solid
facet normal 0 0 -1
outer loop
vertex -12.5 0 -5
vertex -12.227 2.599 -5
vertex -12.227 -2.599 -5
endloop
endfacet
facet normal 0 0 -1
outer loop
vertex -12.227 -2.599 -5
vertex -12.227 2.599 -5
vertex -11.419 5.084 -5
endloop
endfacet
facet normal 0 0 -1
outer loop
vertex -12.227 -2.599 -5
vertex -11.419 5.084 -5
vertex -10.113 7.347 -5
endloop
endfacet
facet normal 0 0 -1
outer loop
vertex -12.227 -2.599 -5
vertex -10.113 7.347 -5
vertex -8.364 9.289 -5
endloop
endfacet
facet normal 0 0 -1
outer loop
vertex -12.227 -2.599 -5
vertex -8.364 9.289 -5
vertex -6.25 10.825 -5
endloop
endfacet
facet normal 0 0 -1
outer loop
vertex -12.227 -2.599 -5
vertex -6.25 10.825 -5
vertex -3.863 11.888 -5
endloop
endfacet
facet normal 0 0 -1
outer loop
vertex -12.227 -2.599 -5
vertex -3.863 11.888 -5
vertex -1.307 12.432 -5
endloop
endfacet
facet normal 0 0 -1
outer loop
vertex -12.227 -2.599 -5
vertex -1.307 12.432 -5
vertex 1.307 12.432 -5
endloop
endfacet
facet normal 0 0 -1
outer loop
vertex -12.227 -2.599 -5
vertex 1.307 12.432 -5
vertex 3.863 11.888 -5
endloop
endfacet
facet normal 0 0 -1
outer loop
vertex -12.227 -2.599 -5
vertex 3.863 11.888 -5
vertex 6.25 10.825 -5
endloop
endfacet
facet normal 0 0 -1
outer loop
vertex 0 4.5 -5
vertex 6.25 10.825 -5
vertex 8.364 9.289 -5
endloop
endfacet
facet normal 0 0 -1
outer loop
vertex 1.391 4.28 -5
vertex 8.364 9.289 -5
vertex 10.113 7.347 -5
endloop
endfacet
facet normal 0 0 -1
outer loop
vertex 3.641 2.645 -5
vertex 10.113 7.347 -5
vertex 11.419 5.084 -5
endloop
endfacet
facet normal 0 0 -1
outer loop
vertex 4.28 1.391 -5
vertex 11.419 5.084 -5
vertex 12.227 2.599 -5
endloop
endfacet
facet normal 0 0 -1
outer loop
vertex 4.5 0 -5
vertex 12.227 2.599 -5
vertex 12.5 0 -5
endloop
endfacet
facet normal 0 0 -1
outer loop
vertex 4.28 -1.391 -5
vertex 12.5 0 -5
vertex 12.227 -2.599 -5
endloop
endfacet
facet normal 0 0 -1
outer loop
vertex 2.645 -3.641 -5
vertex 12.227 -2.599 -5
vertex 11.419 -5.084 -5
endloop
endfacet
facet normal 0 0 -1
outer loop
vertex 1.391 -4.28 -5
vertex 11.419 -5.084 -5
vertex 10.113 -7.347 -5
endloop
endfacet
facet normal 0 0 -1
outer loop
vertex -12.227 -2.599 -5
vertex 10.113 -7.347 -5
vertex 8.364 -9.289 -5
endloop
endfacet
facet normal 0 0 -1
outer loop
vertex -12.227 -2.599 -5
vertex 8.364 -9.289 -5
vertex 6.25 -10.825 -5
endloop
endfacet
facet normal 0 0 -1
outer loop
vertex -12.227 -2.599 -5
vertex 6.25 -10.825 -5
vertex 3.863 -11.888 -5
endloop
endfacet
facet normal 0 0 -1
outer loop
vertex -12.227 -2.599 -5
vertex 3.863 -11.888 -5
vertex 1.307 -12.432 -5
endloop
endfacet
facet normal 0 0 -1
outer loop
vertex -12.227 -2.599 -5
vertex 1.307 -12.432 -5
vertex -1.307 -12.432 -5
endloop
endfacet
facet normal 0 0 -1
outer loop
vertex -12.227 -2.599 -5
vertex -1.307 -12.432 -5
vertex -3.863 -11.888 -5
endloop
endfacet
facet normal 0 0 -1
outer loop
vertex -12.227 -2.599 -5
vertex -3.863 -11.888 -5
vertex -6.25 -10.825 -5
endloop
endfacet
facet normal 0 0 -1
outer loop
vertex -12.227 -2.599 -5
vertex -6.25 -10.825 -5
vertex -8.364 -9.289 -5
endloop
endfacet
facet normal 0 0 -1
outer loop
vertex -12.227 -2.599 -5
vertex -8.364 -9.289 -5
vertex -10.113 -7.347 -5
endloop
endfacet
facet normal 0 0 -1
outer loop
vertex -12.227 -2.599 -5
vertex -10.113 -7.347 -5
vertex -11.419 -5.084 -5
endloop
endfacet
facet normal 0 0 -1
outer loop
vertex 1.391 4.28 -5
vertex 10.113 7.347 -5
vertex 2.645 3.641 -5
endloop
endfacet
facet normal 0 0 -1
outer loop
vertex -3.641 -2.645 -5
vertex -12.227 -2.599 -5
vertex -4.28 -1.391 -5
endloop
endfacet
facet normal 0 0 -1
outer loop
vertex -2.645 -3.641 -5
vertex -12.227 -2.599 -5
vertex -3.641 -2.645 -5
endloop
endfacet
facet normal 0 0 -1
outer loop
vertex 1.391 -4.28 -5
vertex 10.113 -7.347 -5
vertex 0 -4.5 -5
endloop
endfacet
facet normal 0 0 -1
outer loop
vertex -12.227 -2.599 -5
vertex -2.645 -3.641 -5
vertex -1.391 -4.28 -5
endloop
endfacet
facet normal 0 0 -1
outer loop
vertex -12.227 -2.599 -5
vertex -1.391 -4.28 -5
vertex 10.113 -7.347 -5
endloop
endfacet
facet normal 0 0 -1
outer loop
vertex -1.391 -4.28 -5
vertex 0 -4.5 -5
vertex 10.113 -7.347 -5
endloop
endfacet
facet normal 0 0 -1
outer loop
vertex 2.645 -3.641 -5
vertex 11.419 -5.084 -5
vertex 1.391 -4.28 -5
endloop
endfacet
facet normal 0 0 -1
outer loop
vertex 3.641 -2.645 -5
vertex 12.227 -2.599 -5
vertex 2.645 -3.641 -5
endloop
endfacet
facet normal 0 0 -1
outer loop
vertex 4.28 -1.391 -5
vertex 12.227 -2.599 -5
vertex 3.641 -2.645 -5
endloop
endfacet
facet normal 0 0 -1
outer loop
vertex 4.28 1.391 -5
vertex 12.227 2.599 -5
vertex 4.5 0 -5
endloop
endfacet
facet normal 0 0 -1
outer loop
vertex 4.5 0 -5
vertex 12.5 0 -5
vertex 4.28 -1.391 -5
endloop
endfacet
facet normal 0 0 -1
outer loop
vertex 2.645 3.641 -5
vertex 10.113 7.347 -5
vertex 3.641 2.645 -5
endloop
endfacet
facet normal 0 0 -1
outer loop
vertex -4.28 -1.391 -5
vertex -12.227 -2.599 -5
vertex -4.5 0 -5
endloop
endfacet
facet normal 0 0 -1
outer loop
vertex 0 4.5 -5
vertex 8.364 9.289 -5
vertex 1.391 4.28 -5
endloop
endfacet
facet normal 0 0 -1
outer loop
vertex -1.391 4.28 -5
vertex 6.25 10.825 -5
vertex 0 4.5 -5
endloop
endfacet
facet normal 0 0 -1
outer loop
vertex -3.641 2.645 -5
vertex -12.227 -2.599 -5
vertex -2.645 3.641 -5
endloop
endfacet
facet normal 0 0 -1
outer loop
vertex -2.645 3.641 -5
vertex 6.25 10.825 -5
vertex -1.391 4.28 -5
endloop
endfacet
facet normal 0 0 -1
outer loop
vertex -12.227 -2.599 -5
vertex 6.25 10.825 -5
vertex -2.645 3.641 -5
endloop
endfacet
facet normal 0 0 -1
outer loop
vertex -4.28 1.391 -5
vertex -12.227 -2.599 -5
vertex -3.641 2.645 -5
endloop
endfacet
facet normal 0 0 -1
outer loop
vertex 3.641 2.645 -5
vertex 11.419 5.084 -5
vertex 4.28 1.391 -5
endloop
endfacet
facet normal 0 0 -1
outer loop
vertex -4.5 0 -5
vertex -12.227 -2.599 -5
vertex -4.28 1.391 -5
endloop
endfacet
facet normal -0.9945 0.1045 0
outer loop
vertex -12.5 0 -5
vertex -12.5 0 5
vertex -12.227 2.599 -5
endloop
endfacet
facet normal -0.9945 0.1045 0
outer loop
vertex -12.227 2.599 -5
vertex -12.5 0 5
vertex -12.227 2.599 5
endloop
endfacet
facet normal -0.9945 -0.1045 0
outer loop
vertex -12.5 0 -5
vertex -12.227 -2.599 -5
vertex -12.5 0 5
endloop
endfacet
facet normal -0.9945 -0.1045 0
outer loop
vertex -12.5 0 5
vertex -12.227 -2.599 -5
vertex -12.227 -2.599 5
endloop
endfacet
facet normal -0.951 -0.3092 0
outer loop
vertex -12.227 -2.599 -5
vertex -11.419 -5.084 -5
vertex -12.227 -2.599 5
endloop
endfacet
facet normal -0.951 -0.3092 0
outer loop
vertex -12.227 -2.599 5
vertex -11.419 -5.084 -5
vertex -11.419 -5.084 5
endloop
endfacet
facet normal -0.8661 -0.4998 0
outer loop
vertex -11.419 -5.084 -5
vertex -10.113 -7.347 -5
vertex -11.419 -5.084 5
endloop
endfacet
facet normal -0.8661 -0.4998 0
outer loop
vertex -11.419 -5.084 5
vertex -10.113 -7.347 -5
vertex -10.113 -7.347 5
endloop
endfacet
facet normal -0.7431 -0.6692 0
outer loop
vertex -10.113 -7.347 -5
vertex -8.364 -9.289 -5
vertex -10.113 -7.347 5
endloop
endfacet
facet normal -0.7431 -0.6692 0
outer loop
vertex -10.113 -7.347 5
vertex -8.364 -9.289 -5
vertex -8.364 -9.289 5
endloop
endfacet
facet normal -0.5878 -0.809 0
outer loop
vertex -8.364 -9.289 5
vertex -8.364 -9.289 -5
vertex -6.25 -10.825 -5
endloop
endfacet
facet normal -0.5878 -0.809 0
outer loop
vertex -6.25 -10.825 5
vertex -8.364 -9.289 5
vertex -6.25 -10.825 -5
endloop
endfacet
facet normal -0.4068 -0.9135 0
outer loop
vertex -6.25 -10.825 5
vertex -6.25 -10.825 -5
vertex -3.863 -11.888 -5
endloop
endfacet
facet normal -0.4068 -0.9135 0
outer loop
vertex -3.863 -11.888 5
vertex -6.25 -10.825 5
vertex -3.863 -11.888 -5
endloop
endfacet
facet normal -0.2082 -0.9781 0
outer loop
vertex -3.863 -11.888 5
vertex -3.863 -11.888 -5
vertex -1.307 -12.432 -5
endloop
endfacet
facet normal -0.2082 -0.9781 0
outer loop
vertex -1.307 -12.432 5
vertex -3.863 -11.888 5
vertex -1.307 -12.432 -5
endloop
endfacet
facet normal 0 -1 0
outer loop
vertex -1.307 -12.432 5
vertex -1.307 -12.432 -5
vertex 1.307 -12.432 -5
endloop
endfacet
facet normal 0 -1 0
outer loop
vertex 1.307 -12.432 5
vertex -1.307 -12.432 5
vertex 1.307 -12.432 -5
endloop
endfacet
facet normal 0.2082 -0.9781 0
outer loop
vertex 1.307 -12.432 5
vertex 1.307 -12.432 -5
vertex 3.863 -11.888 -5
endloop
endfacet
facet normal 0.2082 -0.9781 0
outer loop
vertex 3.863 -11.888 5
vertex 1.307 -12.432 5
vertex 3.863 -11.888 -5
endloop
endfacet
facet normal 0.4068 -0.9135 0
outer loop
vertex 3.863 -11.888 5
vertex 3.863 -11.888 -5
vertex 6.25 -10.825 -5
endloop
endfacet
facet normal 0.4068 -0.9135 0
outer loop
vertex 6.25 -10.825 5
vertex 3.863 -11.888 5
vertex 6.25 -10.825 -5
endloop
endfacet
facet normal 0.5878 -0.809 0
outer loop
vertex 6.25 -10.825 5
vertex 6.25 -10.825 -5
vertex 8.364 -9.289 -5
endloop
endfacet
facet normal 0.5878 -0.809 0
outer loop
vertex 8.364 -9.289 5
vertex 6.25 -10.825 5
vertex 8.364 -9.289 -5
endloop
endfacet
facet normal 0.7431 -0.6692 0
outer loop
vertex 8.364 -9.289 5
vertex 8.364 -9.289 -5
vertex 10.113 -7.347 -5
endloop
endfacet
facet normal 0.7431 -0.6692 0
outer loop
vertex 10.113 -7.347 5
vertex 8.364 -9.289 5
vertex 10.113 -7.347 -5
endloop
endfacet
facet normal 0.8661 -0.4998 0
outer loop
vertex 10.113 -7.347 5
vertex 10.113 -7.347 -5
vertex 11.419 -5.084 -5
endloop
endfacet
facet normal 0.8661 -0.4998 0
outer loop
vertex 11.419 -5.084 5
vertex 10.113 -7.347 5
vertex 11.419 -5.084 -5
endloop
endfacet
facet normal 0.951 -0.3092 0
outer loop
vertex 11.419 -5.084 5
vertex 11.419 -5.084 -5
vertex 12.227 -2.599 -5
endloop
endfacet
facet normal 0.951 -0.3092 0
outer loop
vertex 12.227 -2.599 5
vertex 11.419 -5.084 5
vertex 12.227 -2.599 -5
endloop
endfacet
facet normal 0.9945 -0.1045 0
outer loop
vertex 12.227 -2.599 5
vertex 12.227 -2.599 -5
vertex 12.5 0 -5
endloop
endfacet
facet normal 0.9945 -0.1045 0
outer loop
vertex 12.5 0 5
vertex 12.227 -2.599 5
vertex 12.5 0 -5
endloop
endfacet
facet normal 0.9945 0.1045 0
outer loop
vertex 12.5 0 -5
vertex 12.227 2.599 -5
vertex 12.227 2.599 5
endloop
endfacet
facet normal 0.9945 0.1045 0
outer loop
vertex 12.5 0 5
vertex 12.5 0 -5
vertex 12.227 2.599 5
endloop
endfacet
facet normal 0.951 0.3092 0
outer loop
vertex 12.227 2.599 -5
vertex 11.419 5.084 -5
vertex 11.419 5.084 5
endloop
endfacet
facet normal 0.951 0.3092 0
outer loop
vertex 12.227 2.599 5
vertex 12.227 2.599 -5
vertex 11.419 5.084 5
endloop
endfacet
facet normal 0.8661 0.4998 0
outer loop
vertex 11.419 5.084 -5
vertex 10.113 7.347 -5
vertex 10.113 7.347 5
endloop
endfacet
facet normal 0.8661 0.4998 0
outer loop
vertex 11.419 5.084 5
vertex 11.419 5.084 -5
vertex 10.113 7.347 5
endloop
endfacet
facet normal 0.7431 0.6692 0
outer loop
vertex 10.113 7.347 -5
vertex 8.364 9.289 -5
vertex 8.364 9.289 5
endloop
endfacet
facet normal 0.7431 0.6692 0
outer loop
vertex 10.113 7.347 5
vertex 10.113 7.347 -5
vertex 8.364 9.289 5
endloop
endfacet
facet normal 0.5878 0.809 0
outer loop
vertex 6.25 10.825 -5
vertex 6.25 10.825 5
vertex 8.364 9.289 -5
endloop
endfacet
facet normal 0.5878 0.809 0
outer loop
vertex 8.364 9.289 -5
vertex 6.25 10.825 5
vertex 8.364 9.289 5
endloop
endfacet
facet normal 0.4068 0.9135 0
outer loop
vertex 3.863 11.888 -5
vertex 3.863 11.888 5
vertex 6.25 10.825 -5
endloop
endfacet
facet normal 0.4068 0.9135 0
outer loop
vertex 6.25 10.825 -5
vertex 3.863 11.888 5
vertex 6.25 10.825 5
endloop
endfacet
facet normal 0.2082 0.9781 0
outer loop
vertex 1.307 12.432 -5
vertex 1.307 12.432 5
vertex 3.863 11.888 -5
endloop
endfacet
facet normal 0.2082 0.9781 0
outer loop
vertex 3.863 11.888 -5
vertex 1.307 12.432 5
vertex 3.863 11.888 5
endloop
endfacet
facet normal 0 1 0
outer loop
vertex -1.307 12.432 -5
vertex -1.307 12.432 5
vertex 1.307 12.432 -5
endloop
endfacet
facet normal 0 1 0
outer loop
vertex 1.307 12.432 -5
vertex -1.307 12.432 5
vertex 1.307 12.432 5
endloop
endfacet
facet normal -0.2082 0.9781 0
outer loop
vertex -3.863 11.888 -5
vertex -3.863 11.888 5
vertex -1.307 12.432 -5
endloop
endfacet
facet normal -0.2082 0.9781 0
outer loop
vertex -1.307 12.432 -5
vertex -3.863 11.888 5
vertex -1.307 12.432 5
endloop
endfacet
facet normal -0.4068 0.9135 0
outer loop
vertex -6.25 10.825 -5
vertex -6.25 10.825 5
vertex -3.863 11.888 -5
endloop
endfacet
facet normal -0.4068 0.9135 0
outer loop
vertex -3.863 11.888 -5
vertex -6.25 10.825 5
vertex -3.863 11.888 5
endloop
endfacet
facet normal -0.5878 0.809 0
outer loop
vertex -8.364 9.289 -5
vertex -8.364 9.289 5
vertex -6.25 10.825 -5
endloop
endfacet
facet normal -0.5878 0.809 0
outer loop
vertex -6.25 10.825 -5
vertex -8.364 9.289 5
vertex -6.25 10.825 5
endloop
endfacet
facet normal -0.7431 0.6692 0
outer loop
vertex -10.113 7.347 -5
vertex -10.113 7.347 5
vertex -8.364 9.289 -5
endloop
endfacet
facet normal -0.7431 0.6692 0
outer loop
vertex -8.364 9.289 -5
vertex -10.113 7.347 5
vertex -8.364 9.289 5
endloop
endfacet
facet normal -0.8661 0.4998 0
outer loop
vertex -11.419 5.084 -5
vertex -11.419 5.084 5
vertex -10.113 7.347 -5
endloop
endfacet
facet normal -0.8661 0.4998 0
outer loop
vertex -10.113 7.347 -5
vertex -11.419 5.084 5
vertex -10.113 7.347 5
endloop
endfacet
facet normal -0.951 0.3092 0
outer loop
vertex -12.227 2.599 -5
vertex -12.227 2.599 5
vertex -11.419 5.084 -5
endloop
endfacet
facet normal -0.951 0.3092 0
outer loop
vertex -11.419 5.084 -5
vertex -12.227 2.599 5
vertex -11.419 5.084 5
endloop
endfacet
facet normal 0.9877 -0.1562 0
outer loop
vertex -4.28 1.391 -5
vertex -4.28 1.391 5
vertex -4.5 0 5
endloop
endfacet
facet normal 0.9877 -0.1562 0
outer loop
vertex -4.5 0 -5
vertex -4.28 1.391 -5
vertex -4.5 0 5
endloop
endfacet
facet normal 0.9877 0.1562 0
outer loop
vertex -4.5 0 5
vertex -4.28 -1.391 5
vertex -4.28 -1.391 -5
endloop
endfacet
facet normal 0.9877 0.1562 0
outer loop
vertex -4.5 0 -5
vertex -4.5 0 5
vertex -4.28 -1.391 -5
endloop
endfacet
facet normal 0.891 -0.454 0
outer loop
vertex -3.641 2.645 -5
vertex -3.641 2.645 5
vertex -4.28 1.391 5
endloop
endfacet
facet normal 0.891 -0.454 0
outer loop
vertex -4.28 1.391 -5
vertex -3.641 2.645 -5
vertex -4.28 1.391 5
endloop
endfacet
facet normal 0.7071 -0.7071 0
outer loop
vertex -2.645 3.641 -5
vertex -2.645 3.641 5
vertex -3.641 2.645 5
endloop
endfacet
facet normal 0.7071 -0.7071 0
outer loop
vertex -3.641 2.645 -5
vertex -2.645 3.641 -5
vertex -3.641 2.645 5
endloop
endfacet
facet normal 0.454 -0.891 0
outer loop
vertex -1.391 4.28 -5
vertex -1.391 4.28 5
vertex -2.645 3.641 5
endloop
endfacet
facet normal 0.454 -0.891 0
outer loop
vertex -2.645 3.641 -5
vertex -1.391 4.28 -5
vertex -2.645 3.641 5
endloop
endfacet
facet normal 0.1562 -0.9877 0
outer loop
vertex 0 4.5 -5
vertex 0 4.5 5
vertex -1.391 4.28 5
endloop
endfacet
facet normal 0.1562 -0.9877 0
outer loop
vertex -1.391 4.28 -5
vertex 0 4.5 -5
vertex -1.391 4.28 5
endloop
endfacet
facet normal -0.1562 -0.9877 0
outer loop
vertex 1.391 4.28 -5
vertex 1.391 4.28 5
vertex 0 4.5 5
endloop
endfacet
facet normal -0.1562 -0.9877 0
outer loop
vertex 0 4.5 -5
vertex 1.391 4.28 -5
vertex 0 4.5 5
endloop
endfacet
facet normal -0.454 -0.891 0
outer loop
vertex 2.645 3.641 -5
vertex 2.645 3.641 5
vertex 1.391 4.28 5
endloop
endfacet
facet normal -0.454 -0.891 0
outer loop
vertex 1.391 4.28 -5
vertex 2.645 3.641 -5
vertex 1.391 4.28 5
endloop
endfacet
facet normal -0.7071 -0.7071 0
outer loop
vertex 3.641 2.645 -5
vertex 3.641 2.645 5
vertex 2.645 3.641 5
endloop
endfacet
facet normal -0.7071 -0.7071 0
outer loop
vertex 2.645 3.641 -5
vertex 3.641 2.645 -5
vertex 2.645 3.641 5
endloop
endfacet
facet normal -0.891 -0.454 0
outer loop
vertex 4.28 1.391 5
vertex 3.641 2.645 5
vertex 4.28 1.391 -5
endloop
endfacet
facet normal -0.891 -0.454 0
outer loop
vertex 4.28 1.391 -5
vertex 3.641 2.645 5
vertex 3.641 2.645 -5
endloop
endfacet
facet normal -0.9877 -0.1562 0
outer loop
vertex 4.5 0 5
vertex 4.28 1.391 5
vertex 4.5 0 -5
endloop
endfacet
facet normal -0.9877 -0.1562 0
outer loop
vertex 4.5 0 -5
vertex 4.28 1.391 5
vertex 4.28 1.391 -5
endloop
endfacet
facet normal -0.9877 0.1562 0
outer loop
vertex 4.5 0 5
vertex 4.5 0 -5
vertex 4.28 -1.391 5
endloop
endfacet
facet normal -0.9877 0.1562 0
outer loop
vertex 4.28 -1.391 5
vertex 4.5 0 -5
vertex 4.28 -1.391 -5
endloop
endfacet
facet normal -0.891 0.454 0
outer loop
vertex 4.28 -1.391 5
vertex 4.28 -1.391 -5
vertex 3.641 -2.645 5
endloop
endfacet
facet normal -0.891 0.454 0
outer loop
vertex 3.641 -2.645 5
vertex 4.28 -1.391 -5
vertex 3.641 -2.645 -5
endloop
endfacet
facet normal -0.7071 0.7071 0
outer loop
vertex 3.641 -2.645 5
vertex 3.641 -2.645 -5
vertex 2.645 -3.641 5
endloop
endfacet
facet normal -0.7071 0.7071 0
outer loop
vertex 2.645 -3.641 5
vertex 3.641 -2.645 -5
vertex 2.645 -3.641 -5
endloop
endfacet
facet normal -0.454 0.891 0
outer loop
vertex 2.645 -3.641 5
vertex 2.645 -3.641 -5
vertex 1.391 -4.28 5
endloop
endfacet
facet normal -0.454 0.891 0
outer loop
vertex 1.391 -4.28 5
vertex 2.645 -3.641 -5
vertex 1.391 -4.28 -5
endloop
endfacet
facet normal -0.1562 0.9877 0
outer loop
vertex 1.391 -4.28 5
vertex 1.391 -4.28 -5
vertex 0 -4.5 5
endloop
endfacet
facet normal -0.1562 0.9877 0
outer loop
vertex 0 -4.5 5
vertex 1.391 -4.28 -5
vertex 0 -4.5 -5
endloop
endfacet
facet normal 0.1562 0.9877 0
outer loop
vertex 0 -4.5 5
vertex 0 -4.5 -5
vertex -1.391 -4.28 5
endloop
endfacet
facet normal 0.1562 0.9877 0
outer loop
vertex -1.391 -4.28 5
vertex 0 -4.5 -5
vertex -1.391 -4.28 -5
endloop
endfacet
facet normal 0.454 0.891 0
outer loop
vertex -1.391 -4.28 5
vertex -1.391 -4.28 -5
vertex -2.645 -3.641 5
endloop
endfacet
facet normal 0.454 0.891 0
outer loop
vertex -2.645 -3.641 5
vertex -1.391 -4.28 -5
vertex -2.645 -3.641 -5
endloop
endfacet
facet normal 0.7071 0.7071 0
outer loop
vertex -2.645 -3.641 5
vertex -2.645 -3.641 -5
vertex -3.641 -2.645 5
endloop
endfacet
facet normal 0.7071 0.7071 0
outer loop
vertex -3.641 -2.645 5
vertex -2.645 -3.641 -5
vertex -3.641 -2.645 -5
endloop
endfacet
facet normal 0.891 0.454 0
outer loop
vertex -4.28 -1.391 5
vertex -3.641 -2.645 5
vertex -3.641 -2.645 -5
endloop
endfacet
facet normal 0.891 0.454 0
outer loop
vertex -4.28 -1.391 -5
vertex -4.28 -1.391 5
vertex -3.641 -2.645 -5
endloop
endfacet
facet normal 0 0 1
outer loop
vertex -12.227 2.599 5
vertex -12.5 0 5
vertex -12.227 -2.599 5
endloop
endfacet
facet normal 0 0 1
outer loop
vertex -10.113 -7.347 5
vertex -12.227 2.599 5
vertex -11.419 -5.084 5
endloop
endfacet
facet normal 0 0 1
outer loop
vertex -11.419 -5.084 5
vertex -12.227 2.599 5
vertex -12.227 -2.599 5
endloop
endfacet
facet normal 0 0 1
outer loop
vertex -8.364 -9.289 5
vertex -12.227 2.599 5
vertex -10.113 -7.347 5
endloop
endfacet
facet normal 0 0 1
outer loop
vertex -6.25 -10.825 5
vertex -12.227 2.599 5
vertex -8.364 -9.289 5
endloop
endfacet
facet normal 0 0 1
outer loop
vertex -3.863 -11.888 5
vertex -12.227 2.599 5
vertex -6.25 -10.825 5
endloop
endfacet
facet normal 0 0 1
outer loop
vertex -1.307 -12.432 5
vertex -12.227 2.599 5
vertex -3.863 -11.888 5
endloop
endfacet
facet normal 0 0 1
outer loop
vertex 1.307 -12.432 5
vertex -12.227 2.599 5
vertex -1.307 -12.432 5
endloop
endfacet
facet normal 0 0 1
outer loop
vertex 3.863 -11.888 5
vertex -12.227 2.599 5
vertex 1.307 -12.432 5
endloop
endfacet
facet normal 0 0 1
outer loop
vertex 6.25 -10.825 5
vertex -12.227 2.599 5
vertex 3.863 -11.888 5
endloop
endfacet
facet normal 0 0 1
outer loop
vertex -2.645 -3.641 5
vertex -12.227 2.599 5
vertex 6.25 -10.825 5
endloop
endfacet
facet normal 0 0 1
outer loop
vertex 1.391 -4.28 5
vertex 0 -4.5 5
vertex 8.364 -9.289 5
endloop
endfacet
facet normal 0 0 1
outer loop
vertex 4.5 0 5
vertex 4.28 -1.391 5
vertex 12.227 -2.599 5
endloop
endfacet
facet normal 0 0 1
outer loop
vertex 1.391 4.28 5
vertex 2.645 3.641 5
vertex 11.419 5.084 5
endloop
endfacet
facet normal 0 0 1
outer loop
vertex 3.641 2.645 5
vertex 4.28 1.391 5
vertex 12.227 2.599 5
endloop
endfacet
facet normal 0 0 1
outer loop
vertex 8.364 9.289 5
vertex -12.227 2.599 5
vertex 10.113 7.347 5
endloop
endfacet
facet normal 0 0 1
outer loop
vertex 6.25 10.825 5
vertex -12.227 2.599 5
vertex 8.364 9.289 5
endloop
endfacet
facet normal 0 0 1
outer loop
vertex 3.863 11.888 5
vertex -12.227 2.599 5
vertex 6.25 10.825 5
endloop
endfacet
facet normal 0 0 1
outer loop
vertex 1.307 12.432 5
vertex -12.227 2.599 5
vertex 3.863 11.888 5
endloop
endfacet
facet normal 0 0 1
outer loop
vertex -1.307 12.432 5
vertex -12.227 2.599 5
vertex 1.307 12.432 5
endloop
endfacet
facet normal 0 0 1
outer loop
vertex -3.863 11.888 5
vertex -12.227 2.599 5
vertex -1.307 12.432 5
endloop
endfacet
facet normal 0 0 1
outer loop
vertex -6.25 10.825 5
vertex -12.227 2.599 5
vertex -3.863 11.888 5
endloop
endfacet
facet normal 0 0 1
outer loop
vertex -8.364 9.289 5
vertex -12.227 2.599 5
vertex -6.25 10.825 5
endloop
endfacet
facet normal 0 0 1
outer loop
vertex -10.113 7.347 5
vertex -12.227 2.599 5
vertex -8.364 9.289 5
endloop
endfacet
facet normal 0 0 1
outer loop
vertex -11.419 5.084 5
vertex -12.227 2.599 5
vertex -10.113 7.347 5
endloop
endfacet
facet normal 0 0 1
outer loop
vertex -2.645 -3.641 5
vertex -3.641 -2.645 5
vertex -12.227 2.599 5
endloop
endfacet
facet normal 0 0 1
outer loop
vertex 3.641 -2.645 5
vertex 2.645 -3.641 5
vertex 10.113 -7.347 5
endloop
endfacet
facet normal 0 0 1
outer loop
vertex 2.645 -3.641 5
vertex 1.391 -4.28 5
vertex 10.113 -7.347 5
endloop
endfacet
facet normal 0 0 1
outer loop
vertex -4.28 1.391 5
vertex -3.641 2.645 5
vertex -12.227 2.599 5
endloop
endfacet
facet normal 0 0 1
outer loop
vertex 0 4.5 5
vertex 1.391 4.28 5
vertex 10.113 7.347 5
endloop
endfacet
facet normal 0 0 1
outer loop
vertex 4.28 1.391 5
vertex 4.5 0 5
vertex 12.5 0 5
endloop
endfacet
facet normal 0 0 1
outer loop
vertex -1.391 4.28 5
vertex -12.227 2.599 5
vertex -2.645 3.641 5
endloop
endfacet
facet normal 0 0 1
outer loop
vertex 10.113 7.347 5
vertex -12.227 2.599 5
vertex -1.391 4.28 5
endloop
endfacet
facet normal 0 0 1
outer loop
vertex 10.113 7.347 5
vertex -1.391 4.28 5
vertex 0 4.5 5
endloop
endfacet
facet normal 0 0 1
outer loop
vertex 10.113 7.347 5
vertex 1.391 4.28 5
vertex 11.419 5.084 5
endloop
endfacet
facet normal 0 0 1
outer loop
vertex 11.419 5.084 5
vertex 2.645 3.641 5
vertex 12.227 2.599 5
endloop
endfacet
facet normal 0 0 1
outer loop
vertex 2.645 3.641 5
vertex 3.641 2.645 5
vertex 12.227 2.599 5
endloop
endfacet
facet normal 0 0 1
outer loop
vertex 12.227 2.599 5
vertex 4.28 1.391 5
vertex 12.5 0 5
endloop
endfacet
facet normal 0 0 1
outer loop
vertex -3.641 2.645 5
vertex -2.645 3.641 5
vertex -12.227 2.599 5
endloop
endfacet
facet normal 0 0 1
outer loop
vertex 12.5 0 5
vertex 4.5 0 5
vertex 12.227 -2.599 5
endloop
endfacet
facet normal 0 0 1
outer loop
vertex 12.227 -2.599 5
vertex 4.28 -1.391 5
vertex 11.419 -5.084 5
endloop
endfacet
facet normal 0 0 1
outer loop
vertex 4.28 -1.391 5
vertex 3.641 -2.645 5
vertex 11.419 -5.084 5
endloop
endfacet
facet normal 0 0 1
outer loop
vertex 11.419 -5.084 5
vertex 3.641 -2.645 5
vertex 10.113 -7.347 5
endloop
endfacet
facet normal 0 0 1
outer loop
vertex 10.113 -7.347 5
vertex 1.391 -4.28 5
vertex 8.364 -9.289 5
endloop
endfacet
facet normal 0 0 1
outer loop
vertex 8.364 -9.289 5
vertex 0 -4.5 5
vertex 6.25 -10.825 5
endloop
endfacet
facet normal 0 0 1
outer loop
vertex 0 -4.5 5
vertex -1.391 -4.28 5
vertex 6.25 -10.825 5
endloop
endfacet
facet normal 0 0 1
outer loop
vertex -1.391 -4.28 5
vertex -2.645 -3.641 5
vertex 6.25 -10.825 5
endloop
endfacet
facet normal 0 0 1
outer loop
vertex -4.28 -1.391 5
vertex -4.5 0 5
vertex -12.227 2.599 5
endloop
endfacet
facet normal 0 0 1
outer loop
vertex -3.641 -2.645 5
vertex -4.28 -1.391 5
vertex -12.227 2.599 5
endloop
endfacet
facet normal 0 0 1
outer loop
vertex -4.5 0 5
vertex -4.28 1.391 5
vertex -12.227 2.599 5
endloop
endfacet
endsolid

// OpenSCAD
th=1.5;
h = 10;
di = 9;


de = 25;


difference() {
  cylinder(r = de/2, h = h, center = true, $fn = 30);
  cylinder(r = di/2, h = h+1, center = true, $fn = 20);
}
